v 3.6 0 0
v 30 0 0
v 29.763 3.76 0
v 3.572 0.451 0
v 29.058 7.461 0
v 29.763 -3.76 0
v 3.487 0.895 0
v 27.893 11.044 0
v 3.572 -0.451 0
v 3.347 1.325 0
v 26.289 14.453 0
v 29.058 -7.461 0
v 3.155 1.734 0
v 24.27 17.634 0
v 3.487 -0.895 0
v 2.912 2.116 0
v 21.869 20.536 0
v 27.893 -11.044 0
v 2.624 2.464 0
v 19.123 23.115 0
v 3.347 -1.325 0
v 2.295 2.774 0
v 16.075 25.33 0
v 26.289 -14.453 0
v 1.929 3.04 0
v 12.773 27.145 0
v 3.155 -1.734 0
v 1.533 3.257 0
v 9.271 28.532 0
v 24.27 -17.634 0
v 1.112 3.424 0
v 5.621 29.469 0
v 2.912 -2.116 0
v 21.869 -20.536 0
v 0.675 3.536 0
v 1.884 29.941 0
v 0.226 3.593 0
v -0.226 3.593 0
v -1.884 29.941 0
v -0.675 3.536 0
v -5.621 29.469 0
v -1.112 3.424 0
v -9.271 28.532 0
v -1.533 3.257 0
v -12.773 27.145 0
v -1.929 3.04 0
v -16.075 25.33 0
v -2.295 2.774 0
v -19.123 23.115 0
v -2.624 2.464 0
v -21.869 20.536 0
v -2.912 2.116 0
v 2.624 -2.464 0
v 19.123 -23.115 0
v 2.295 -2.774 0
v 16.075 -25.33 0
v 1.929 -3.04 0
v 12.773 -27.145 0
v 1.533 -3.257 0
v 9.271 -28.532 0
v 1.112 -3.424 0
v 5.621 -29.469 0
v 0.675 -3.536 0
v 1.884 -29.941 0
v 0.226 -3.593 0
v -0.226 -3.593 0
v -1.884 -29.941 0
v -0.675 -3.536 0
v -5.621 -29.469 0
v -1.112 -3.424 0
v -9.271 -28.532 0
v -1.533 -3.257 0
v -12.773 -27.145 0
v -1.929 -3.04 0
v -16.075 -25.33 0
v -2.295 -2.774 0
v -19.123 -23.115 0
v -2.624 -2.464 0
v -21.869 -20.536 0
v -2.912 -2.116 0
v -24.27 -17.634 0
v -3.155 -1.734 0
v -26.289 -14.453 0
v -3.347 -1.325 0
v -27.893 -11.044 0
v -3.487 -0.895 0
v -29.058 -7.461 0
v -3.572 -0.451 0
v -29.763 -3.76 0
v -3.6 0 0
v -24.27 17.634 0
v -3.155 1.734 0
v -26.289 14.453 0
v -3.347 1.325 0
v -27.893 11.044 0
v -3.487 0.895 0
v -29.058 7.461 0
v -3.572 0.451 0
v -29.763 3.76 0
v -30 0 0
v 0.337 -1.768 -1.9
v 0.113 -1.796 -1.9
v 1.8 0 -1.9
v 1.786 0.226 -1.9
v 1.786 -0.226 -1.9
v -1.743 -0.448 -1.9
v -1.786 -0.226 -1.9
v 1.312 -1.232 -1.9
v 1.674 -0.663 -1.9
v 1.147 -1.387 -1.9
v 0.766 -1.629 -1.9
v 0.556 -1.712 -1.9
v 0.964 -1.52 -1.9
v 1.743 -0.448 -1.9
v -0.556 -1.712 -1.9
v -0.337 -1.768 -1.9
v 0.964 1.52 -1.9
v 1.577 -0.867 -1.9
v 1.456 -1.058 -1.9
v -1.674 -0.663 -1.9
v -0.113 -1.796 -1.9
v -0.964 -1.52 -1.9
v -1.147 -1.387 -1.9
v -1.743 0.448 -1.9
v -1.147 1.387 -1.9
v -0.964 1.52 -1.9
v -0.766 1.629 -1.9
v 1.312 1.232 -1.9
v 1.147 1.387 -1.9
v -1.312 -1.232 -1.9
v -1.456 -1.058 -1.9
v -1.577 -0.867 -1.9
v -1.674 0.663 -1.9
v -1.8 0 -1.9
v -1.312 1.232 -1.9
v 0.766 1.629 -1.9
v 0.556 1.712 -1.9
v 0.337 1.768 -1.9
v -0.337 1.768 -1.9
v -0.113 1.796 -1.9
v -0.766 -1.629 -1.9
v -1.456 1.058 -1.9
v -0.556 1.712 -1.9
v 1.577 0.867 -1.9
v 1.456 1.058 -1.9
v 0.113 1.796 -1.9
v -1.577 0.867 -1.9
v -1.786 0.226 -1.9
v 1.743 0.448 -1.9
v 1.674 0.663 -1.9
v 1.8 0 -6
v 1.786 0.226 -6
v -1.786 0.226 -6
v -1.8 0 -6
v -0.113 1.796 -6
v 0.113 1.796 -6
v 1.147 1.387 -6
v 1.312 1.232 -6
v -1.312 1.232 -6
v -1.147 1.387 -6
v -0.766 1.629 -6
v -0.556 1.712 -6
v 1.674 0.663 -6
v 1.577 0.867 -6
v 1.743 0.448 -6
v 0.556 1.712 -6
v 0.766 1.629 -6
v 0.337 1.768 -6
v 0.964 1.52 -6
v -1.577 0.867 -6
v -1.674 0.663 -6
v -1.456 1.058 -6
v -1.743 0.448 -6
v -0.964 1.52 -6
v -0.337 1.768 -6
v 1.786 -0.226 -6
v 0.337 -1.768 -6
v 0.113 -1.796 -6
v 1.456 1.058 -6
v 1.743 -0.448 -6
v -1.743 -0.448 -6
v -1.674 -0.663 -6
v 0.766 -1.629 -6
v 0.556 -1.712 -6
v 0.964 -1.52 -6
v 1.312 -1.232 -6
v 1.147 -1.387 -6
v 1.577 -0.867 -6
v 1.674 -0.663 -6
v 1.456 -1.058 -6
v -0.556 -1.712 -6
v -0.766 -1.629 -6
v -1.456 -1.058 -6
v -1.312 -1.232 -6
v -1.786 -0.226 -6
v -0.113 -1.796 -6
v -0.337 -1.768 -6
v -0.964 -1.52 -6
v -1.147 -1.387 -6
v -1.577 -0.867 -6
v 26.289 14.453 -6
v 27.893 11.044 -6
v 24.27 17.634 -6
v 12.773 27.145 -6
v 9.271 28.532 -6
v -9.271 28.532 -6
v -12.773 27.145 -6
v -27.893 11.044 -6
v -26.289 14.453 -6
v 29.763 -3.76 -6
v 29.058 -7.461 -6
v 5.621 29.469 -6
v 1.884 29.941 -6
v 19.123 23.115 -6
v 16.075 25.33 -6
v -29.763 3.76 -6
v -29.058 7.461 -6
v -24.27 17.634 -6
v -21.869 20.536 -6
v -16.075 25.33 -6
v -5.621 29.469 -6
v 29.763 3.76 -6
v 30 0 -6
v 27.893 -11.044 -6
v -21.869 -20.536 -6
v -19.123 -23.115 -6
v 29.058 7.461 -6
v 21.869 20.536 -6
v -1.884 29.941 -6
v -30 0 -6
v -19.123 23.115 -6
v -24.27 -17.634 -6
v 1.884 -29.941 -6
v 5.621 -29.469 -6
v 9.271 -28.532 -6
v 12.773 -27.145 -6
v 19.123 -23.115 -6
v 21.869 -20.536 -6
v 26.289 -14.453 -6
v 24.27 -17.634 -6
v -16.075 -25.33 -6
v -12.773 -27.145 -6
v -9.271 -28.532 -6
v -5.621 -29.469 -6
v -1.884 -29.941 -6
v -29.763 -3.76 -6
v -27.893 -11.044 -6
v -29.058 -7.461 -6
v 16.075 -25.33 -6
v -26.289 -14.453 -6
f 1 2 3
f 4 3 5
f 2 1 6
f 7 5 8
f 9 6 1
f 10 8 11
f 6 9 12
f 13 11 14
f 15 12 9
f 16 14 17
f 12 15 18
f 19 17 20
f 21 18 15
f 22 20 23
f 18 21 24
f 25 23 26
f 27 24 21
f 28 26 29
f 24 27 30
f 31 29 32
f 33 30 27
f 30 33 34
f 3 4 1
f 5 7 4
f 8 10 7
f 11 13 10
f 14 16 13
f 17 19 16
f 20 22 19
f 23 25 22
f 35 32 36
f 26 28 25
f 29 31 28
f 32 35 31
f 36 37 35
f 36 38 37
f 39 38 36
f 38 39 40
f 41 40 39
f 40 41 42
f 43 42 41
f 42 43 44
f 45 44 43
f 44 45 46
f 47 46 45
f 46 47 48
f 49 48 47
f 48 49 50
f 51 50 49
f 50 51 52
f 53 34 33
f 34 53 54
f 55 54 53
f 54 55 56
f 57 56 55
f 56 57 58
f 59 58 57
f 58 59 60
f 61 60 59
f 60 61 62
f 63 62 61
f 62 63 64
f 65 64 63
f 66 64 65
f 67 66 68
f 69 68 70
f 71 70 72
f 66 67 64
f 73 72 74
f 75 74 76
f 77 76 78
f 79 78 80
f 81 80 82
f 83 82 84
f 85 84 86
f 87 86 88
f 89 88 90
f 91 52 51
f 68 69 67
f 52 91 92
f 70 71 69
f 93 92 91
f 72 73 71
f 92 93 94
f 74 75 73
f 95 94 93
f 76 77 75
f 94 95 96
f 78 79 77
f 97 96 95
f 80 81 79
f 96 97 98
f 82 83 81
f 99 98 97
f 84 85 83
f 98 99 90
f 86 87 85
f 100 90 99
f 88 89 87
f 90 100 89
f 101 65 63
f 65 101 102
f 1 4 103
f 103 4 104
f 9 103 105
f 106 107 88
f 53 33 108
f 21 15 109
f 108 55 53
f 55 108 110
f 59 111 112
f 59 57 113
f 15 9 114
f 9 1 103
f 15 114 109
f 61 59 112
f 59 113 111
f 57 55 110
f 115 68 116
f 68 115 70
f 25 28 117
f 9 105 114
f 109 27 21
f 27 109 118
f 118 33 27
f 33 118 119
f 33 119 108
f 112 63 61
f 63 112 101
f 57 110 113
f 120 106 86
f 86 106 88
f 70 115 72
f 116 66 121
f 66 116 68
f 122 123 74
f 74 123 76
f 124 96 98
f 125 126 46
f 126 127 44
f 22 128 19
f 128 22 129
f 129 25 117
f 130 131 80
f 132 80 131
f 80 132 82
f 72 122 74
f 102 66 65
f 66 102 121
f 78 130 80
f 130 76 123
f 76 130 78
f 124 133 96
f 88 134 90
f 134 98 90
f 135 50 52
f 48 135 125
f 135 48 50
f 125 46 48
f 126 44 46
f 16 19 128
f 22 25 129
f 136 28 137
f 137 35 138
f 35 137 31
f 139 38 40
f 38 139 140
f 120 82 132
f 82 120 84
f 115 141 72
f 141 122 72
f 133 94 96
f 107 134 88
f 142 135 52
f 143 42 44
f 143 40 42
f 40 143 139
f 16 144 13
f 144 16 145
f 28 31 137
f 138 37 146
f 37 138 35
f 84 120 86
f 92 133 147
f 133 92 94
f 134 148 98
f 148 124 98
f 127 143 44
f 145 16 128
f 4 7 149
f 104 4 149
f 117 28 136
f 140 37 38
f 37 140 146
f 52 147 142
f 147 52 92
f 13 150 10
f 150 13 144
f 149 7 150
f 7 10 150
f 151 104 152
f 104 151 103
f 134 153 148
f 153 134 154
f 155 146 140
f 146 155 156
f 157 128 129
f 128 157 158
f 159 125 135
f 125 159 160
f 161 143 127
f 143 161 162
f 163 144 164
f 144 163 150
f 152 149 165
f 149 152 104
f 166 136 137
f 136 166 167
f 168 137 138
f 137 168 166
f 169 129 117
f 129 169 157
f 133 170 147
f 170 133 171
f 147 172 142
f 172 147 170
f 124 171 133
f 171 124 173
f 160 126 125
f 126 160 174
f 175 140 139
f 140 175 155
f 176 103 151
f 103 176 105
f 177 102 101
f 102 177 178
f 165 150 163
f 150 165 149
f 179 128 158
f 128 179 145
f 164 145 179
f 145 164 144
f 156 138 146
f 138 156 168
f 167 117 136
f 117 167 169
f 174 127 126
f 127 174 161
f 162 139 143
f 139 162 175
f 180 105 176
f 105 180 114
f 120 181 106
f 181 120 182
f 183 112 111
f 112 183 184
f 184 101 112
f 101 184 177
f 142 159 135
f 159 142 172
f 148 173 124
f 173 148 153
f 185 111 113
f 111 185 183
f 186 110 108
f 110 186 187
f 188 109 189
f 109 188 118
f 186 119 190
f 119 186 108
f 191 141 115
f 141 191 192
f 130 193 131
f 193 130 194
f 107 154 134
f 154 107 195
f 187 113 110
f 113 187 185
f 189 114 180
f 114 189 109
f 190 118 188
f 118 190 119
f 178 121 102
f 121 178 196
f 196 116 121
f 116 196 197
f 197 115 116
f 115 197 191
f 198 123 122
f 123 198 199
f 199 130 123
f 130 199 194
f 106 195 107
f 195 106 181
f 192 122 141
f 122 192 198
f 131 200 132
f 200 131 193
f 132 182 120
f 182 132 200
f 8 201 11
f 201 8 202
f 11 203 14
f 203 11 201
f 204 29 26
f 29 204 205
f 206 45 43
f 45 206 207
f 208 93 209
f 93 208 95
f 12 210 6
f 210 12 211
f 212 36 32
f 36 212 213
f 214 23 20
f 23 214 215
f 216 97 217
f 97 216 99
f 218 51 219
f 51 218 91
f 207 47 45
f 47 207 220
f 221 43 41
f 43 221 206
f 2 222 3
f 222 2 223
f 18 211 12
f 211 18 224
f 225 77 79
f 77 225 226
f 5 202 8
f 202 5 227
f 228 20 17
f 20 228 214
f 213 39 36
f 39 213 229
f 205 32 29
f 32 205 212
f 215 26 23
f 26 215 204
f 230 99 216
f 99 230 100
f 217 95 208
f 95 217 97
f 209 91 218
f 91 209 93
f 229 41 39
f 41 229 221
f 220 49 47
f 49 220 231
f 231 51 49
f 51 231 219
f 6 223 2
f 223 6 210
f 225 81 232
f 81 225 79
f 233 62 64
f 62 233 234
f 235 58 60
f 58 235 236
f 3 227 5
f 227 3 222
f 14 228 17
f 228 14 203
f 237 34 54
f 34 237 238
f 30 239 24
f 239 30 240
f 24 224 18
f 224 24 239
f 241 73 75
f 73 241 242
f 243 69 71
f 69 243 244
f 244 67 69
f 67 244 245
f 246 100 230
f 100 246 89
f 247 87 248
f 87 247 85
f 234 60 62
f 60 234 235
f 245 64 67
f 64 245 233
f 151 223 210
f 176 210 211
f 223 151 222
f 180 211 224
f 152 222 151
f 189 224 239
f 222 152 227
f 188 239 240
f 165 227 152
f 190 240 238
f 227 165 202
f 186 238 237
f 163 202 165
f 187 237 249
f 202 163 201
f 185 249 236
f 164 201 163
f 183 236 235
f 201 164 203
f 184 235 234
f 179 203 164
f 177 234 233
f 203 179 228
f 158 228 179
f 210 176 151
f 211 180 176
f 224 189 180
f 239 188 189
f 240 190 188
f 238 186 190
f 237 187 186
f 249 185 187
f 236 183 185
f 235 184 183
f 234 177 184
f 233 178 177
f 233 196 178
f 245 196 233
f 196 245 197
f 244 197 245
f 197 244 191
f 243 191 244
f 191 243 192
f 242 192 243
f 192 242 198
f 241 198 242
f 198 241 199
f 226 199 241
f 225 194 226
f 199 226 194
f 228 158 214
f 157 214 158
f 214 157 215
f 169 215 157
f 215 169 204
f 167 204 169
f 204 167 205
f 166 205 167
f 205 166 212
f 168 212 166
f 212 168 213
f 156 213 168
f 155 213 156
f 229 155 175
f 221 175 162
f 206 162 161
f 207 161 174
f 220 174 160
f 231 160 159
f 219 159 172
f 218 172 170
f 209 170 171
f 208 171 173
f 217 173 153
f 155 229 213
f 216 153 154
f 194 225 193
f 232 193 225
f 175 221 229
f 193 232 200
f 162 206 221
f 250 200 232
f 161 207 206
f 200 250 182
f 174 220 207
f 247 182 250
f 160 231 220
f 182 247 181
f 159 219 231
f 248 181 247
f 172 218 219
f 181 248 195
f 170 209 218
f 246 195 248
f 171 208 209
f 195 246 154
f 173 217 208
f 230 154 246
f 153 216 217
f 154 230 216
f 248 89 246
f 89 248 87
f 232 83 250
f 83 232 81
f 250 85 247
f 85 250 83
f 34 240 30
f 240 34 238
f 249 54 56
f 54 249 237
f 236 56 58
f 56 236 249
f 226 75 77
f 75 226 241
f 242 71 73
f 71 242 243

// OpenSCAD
$fn = 50;


difference() {
	union() {
		translate(v = [0, 0, -6.0000000000]) {
			cylinder(h = 6, r = 30.0000000000);
		}
	}
	union() {
		translate(v = [0, 0, 0]) {
			rotate(a = [0, 0, 0]) {
				difference() {
					union() {
						translate(v = [0, 0, -9.0000000000]) {
							cylinder(h = 9, r = 1.5000000000);
						}
						translate(v = [0, 0, -1.9000000000]) {
							cylinder(h = 1.9000000000, r1 = 1.8000000000, r2 = 3.6000000000);
						}
						translate(v = [0, 0, -9.0000000000]) {
							cylinder(h = 9, r = 1.8000000000);
						}
						translate(v = [0, 0, -9.0000000000]) {
							cylinder(h = 9, r = 1.5000000000);
						}
					}
					union();
				}
			}
		}
	}
}
